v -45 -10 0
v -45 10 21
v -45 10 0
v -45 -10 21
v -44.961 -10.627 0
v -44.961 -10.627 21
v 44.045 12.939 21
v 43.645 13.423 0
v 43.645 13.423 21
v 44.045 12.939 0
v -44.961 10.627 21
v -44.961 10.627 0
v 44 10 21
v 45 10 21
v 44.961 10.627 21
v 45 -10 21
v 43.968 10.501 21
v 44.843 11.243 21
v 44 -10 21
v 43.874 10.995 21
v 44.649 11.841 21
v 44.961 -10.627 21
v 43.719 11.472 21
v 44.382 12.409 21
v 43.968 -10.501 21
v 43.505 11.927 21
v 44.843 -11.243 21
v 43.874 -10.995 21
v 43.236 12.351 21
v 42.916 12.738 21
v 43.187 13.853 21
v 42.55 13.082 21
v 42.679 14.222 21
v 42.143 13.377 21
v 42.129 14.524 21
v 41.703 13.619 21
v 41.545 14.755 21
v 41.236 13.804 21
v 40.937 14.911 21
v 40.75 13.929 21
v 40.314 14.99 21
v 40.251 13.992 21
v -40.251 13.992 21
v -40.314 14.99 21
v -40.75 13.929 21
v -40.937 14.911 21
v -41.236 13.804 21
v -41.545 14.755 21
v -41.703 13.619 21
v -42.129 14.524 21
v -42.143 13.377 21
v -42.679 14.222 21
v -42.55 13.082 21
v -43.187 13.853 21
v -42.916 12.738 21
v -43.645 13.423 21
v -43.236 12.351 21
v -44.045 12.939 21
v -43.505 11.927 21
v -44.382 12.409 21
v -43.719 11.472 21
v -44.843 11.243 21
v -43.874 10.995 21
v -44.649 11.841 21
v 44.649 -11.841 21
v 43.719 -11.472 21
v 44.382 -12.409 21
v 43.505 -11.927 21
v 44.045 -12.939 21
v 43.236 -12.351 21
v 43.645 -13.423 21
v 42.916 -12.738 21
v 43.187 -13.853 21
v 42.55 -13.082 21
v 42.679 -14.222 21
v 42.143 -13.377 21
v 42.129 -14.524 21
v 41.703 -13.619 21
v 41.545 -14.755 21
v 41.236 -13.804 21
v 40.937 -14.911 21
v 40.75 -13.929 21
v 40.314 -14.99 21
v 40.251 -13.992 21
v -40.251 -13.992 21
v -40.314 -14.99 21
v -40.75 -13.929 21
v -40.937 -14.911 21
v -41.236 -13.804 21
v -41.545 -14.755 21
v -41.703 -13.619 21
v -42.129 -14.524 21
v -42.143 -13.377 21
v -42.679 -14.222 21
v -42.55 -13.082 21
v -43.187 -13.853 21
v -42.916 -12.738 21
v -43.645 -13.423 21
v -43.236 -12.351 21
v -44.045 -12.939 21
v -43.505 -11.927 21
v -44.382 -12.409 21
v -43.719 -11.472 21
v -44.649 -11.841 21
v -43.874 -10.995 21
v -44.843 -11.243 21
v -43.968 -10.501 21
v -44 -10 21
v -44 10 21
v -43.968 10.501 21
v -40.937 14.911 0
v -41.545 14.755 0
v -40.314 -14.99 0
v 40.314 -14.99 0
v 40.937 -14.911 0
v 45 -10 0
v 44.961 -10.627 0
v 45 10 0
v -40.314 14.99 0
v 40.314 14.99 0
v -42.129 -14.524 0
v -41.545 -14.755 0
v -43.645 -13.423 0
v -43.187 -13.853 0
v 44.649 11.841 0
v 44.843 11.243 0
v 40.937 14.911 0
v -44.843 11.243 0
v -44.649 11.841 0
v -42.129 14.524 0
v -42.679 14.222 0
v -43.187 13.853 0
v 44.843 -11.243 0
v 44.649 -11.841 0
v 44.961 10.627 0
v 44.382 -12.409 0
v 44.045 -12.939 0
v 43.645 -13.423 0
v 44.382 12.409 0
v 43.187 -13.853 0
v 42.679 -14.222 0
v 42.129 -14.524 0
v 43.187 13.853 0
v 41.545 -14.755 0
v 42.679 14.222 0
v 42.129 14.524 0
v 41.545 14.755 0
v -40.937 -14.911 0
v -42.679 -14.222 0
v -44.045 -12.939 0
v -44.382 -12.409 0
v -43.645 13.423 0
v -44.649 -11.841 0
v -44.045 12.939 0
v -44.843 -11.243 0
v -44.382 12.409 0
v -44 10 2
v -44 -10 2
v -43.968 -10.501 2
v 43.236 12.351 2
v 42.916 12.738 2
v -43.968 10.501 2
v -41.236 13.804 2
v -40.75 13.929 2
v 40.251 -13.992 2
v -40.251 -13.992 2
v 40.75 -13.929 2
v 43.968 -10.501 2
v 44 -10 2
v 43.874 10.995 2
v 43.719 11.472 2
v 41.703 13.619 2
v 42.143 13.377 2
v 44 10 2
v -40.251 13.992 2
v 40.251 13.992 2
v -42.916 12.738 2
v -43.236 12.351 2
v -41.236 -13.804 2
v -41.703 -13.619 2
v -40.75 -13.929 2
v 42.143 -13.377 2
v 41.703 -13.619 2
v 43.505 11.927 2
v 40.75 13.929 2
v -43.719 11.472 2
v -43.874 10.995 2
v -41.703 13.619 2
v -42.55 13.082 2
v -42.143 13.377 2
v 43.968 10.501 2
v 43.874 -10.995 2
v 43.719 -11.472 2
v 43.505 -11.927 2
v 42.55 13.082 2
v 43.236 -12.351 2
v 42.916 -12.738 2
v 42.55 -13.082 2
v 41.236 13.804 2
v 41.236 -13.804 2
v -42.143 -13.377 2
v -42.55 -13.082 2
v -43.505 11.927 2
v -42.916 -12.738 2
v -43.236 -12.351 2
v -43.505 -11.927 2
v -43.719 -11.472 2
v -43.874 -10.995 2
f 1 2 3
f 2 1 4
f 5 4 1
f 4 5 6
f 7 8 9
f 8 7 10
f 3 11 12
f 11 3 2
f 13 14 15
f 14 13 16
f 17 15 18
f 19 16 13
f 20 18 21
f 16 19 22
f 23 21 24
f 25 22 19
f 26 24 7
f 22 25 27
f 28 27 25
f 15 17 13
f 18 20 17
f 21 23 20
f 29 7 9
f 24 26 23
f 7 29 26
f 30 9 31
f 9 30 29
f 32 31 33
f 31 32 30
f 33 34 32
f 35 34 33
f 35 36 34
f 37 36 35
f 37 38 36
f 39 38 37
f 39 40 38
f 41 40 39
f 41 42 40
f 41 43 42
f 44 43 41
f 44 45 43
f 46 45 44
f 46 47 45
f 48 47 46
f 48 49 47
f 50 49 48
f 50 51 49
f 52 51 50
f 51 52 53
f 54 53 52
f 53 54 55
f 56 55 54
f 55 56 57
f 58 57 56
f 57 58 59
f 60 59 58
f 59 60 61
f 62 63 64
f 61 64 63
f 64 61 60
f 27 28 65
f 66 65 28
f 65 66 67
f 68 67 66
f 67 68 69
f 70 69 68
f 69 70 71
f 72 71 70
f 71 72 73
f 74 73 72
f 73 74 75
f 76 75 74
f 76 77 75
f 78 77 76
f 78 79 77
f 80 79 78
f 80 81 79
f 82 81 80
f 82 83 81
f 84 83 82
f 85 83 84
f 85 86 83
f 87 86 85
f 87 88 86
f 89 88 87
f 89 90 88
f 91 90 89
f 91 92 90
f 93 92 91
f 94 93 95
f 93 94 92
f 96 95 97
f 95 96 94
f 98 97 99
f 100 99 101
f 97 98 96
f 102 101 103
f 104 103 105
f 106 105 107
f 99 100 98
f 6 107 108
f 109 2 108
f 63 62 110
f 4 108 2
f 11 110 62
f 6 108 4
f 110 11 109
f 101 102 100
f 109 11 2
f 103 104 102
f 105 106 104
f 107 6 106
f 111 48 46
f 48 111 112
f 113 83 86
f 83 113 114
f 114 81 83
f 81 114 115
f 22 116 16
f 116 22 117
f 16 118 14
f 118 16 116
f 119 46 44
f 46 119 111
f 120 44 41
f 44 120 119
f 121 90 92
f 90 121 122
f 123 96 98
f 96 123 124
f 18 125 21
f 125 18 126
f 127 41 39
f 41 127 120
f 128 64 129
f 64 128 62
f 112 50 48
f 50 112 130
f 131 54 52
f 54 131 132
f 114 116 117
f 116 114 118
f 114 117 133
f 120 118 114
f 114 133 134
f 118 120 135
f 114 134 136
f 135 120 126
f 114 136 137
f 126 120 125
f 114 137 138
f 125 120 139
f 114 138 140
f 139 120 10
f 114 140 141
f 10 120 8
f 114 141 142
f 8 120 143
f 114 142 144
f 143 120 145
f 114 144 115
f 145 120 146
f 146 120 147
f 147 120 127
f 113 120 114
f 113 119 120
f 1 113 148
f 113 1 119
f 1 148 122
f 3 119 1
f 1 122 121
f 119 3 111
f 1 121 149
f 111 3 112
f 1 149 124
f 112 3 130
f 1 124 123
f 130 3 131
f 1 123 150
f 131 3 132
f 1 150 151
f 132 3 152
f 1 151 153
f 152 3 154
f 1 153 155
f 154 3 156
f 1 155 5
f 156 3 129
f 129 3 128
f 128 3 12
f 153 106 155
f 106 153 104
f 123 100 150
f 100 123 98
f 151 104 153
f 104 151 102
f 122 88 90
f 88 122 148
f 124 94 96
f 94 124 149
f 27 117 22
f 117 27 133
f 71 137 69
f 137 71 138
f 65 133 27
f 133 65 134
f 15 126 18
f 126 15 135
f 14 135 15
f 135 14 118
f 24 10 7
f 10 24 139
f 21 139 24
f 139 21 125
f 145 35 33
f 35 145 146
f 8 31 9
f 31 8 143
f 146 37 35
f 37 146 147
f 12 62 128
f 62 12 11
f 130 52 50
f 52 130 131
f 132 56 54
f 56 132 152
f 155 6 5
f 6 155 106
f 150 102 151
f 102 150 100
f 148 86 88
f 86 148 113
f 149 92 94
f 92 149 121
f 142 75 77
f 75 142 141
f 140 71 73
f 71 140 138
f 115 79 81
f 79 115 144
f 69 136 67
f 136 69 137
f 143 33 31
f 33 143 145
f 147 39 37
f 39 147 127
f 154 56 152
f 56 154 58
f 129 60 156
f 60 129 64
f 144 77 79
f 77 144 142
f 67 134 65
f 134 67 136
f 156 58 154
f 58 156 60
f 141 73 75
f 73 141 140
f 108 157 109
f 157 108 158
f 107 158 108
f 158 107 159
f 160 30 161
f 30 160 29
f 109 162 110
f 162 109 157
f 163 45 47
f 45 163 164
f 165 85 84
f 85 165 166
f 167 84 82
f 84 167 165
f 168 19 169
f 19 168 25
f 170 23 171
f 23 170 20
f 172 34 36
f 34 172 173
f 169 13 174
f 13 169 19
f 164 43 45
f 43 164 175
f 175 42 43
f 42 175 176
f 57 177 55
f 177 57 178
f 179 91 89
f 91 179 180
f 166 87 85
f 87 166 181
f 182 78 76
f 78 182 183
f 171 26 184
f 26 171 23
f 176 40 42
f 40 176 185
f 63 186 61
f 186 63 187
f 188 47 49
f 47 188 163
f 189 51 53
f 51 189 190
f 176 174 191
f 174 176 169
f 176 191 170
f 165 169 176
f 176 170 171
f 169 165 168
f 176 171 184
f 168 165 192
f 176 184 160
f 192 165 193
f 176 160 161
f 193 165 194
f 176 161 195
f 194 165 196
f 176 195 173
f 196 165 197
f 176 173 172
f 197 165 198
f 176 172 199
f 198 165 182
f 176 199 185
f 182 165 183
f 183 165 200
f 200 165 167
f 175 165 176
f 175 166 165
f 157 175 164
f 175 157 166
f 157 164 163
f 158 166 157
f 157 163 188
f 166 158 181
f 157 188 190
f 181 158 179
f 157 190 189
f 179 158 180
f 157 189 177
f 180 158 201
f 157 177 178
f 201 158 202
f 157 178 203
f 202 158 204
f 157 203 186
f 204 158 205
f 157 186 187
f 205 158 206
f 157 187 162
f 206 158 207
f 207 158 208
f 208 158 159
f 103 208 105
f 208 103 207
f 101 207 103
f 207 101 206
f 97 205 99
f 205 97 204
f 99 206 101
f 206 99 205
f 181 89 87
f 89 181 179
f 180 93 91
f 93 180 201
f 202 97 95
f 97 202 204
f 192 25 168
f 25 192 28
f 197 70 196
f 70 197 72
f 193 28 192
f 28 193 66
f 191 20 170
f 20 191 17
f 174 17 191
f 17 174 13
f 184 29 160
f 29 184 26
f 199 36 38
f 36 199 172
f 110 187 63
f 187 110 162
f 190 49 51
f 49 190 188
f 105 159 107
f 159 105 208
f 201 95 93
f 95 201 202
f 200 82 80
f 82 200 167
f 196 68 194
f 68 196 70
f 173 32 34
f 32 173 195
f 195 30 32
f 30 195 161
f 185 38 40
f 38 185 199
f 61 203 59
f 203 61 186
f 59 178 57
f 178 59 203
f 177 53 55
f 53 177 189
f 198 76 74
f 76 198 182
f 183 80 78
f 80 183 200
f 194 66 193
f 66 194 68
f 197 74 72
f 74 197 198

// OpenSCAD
$fn = 50;


difference() {
	union() {
		hull() {
			translate(v = [-40.0000000000, 10.0000000000, 0]) {
				cylinder(h = 21, r = 5);
			}
			translate(v = [40.0000000000, 10.0000000000, 0]) {
				cylinder(h = 21, r = 5);
			}
			translate(v = [-40.0000000000, -10.0000000000, 0]) {
				cylinder(h = 21, r = 5);
			}
			translate(v = [40.0000000000, -10.0000000000, 0]) {
				cylinder(h = 21, r = 5);
			}
		}
	}
	union() {
		translate(v = [0, 0, 2]) {
			#hull() {
				translate(v = [-40.0000000000, 10.0000000000, 0]) {
					cylinder(h = 19, r = 4);
				}
				translate(v = [40.0000000000, 10.0000000000, 0]) {
					cylinder(h = 19, r = 4);
				}
				translate(v = [-40.0000000000, -10.0000000000, 0]) {
					cylinder(h = 19, r = 4);
				}
				translate(v = [40.0000000000, -10.0000000000, 0]) {
					cylinder(h = 19, r = 4);
				}
			}
		}
	}
}
